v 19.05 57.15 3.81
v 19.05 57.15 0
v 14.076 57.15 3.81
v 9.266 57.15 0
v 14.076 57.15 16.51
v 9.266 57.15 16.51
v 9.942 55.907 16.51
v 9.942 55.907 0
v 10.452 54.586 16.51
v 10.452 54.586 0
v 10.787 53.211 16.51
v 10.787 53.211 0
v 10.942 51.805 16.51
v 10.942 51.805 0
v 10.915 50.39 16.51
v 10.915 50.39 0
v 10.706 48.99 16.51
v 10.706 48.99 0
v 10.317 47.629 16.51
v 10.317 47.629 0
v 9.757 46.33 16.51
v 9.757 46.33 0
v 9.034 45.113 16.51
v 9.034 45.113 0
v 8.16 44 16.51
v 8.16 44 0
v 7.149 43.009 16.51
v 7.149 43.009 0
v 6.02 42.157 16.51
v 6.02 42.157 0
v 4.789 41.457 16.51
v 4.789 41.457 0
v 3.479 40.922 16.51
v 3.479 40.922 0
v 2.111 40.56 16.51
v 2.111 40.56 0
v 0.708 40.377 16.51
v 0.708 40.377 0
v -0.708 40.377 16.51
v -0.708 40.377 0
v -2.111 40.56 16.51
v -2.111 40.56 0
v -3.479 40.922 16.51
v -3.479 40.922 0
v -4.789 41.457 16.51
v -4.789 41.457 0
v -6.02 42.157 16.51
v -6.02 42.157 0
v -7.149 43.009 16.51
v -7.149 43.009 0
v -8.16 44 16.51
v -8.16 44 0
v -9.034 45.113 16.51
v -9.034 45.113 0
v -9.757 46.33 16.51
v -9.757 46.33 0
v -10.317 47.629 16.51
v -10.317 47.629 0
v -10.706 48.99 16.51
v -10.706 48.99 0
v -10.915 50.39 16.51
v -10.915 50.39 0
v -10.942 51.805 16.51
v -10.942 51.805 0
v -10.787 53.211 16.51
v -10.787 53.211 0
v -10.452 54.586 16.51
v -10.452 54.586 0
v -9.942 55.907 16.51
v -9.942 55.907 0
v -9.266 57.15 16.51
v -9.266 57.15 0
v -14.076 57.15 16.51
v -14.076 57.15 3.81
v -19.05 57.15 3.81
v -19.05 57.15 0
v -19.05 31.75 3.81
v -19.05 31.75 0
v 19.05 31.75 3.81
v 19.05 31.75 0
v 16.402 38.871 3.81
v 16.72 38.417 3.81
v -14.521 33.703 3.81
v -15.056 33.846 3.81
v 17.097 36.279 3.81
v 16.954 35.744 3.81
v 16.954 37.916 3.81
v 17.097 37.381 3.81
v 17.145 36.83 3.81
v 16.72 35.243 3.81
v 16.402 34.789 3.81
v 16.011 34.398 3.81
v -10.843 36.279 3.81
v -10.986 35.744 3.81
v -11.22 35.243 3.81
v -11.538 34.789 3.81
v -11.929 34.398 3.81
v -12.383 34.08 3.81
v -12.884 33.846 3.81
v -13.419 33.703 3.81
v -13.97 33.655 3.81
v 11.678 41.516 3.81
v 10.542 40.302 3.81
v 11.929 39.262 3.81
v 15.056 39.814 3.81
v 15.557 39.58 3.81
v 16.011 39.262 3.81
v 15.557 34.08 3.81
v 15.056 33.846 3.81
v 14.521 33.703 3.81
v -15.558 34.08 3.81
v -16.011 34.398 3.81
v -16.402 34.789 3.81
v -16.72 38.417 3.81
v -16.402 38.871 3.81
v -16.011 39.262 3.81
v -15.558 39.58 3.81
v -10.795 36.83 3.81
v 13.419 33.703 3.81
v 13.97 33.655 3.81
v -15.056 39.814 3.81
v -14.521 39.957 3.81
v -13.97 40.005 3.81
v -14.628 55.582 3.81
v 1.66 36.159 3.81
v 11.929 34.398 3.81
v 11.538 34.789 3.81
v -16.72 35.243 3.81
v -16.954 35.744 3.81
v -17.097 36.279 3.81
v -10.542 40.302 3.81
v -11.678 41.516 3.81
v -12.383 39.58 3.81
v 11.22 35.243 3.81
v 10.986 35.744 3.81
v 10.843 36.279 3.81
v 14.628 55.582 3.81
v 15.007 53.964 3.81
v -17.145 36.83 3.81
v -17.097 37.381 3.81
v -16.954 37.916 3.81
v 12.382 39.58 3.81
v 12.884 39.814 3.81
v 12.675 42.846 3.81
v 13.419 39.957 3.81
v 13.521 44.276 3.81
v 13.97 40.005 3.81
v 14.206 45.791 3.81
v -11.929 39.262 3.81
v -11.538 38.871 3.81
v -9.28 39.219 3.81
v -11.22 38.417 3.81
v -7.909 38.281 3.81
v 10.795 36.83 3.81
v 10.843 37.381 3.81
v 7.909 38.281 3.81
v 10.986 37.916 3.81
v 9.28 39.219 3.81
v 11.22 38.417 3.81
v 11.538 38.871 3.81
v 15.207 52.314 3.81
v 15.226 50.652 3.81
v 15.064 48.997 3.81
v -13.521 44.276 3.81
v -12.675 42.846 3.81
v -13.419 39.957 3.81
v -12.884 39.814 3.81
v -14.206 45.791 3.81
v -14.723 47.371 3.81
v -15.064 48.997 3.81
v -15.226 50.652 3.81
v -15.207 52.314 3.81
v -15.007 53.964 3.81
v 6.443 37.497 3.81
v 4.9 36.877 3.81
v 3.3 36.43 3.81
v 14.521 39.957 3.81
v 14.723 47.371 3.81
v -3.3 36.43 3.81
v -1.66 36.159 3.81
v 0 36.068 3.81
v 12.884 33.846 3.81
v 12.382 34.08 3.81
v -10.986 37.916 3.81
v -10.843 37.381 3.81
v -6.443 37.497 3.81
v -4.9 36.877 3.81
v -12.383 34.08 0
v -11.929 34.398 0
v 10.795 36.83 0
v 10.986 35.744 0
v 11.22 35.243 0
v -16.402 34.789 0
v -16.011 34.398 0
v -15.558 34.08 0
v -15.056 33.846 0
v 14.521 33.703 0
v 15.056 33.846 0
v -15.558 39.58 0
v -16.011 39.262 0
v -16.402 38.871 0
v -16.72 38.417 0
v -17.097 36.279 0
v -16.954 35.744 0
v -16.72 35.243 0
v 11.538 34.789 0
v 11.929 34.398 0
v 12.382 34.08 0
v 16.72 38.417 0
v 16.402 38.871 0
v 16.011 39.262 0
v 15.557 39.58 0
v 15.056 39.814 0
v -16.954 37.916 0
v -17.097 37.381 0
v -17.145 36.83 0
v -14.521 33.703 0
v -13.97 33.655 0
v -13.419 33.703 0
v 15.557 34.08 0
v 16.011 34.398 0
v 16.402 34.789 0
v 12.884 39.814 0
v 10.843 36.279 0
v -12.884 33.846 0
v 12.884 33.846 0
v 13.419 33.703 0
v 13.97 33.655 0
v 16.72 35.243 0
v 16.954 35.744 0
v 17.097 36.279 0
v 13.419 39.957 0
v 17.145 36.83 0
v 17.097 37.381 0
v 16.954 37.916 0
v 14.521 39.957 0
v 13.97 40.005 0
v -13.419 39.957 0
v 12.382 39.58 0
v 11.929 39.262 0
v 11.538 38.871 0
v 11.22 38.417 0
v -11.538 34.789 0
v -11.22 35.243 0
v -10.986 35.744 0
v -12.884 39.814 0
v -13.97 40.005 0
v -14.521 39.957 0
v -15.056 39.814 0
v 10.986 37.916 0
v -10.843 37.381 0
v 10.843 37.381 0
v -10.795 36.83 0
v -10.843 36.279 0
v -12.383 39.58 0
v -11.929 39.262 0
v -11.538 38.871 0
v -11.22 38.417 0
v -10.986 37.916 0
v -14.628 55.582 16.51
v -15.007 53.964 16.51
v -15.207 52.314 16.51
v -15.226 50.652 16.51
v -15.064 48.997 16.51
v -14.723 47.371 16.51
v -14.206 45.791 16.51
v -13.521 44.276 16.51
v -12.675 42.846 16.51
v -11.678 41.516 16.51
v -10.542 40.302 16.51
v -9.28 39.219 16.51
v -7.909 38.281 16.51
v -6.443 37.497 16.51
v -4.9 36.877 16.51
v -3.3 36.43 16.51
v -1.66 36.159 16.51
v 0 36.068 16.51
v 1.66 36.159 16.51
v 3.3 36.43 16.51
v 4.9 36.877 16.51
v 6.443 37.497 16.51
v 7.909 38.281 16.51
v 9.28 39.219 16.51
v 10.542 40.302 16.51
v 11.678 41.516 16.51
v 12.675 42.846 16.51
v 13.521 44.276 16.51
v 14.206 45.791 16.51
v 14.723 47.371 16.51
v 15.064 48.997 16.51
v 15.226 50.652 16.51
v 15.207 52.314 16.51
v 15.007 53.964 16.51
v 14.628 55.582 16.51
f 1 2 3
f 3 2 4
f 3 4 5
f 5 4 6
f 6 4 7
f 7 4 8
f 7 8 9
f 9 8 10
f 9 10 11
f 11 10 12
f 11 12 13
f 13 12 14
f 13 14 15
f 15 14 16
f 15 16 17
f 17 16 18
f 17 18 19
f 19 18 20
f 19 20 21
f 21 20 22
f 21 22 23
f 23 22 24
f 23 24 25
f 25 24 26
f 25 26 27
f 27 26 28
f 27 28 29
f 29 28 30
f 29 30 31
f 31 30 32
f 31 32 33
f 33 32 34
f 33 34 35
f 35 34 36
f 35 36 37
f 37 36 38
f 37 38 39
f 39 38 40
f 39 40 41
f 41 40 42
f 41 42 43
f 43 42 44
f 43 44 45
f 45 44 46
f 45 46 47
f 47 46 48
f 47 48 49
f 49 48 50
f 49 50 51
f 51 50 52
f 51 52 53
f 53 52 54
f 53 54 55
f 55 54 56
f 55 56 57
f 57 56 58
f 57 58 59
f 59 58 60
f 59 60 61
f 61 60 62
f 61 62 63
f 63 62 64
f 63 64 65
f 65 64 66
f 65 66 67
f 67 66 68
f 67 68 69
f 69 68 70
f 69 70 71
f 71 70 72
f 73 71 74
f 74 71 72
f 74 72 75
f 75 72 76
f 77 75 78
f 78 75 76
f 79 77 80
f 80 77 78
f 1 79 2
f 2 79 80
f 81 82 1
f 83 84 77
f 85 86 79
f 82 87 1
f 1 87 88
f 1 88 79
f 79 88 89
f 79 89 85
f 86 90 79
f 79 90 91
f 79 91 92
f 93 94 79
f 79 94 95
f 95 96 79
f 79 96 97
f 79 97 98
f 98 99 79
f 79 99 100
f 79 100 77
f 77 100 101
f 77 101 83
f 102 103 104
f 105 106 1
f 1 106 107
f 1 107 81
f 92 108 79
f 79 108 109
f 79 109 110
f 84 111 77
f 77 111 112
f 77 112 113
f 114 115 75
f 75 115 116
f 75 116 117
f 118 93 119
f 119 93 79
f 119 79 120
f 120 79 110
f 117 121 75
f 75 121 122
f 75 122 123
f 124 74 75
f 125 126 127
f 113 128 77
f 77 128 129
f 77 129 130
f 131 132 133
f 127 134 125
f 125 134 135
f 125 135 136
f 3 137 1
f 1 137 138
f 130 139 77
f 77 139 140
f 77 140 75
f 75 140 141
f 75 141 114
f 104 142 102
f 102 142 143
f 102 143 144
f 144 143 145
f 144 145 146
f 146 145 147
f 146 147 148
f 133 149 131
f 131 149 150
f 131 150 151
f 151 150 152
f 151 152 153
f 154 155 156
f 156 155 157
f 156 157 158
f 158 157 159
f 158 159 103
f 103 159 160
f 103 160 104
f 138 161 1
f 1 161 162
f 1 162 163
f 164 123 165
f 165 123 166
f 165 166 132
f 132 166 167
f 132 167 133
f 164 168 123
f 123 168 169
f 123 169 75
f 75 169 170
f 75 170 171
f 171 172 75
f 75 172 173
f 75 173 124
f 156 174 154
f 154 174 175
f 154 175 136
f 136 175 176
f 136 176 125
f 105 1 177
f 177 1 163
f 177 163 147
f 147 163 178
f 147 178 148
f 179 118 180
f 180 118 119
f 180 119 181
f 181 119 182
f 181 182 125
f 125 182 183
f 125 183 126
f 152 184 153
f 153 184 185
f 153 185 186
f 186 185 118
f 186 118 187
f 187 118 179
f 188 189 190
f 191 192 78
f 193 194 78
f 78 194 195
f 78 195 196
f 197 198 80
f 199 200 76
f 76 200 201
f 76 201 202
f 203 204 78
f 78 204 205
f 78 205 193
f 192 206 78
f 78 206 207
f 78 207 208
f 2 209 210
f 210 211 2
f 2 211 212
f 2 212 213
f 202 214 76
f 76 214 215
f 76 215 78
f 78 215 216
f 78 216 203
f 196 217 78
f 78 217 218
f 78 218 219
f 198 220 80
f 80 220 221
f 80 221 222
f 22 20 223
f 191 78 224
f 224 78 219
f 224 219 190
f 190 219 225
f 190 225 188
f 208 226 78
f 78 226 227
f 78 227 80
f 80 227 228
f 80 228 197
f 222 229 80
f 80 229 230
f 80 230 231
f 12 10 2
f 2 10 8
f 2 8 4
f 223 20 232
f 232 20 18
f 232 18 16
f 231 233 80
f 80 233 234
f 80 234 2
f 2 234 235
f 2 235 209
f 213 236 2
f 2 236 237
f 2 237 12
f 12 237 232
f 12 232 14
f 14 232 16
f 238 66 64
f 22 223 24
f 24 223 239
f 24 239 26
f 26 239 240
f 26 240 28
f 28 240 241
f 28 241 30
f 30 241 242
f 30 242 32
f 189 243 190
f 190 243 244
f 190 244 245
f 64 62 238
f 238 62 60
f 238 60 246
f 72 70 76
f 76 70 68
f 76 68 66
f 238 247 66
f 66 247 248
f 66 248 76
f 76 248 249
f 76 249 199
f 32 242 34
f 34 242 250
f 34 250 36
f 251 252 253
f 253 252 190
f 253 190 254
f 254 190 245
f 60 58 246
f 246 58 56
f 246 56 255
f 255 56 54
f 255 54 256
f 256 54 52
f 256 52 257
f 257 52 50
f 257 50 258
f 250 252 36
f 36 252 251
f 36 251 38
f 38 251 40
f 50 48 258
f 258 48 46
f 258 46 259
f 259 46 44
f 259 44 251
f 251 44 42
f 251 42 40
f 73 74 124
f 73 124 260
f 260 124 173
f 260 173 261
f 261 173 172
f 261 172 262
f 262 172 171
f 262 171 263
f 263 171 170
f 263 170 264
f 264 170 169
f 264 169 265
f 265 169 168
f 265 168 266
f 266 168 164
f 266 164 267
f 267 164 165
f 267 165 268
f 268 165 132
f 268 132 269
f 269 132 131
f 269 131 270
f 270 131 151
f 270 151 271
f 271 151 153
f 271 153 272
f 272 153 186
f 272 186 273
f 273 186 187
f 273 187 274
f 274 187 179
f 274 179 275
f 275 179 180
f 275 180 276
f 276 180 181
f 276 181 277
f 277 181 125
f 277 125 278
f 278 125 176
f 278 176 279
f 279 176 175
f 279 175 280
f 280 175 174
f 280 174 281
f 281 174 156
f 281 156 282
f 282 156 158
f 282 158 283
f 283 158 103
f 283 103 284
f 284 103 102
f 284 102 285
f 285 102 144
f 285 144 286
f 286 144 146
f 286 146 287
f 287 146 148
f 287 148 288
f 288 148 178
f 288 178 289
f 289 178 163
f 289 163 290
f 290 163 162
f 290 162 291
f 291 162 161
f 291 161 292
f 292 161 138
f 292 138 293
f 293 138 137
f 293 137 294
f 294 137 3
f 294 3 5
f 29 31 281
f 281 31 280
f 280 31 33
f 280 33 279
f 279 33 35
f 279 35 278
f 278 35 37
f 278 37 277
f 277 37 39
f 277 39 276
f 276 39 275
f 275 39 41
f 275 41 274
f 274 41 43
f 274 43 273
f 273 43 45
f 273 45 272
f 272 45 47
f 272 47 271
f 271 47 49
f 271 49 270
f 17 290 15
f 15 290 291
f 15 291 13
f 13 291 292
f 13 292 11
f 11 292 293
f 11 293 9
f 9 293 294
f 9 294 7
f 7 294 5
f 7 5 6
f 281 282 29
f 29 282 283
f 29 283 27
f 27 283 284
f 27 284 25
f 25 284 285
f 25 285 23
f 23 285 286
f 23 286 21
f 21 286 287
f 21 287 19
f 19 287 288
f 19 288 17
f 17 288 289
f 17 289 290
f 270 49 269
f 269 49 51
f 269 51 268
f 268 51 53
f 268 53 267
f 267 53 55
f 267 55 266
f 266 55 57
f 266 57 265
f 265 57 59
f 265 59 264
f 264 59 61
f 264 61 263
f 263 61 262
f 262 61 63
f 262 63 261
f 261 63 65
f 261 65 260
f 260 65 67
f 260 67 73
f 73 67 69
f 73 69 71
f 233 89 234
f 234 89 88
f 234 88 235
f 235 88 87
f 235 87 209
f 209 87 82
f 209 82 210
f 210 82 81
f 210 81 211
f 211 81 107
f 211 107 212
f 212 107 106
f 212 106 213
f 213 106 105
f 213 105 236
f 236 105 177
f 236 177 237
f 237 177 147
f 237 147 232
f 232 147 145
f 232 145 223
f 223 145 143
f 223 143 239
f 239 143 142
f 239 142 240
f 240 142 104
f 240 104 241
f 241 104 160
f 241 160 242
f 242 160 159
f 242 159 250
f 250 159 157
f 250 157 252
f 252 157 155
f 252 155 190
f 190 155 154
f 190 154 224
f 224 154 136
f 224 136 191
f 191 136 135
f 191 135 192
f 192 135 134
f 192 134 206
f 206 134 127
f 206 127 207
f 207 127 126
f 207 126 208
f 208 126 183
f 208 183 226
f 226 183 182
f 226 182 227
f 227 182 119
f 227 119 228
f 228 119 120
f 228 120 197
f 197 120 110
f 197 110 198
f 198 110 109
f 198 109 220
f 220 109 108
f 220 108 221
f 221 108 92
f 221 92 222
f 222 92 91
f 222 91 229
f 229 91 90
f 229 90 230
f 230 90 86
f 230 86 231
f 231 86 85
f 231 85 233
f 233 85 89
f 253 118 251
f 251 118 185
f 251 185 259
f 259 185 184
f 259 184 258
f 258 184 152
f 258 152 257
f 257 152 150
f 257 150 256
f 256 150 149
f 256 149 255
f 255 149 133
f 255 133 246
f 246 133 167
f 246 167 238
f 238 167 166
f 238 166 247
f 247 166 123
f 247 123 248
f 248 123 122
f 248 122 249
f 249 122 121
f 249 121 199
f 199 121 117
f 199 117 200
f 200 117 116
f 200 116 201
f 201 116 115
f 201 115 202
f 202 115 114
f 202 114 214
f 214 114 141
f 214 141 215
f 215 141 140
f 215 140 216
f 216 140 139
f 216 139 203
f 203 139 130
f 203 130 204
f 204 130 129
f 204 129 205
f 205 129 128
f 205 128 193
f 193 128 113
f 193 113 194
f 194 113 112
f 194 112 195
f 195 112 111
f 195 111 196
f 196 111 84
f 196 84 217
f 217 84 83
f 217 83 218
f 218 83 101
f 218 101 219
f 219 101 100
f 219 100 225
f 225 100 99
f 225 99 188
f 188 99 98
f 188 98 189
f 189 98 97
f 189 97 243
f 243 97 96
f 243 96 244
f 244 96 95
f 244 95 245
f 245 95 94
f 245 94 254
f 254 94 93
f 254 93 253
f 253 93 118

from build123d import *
from build123d.topology import SkipClean

# Parameters (mm, degrees)
BOSS_EXTRUDE1_DEPTH = 3.81
BOSS_EXTRUDE2_DEPTH = 12.7
SKETCH3_R           = 3.175
CUT_EXTRUDE1_DEPTH  = 3.81


with BuildPart() as part:
    # Sketch1 → Boss-Extrude1 (new body)
    with BuildSketch(Plane.XY):
        with BuildLine():
            Line((19.05, 57.15), (19.05, 31.75))
            Line((19.05, 31.75), (-19.05, 31.75))
            Line((-19.05, 31.75), (-19.05, 57.15))
            Line((-19.05, 57.15), (-9.265833749, 57.15))
            ThreePointArc((-9.265833749, 57.15), (0, 40.35425), (9.265833749, 57.15))
            Line((9.265833749, 57.15), (19.05, 57.15))
        make_face()
    extrude(amount=BOSS_EXTRUDE1_DEPTH)

    # Sketch2 → Boss-Extrude2 (add)
    with SkipClean():  # the faces are left unmerged after this step: merging them gives an invalid solid
        with BuildSketch(Plane.XY.offset(3.81)):
            with BuildLine():
                Line((14.075817419, 57.15), (9.265833749, 57.15))
                ThreePointArc((9.265833749, 57.15), (0, 40.35425), (-9.265833749, 57.15))
                Line((-9.265833749, 57.15), (-14.075817419, 57.15))
                ThreePointArc((-14.075817419, 57.15), (0, 36.068), (14.075817419, 57.15))
            make_face()
        extrude(amount=BOSS_EXTRUDE2_DEPTH)

    # Sketch3 → Cut-Extrude1 (cut)
    with SkipClean():  # the faces are left unmerged after this step: merging them gives an invalid solid
        with BuildSketch(Plane.XY.offset(3.81)):
            with Locations((-13.97, 36.83)):
                Circle(SKETCH3_R)
            with Locations((13.97, 36.83)):
                Circle(SKETCH3_R)
        extrude(amount=-CUT_EXTRUDE1_DEPTH, mode=Mode.SUBTRACT)


solid = part.part
